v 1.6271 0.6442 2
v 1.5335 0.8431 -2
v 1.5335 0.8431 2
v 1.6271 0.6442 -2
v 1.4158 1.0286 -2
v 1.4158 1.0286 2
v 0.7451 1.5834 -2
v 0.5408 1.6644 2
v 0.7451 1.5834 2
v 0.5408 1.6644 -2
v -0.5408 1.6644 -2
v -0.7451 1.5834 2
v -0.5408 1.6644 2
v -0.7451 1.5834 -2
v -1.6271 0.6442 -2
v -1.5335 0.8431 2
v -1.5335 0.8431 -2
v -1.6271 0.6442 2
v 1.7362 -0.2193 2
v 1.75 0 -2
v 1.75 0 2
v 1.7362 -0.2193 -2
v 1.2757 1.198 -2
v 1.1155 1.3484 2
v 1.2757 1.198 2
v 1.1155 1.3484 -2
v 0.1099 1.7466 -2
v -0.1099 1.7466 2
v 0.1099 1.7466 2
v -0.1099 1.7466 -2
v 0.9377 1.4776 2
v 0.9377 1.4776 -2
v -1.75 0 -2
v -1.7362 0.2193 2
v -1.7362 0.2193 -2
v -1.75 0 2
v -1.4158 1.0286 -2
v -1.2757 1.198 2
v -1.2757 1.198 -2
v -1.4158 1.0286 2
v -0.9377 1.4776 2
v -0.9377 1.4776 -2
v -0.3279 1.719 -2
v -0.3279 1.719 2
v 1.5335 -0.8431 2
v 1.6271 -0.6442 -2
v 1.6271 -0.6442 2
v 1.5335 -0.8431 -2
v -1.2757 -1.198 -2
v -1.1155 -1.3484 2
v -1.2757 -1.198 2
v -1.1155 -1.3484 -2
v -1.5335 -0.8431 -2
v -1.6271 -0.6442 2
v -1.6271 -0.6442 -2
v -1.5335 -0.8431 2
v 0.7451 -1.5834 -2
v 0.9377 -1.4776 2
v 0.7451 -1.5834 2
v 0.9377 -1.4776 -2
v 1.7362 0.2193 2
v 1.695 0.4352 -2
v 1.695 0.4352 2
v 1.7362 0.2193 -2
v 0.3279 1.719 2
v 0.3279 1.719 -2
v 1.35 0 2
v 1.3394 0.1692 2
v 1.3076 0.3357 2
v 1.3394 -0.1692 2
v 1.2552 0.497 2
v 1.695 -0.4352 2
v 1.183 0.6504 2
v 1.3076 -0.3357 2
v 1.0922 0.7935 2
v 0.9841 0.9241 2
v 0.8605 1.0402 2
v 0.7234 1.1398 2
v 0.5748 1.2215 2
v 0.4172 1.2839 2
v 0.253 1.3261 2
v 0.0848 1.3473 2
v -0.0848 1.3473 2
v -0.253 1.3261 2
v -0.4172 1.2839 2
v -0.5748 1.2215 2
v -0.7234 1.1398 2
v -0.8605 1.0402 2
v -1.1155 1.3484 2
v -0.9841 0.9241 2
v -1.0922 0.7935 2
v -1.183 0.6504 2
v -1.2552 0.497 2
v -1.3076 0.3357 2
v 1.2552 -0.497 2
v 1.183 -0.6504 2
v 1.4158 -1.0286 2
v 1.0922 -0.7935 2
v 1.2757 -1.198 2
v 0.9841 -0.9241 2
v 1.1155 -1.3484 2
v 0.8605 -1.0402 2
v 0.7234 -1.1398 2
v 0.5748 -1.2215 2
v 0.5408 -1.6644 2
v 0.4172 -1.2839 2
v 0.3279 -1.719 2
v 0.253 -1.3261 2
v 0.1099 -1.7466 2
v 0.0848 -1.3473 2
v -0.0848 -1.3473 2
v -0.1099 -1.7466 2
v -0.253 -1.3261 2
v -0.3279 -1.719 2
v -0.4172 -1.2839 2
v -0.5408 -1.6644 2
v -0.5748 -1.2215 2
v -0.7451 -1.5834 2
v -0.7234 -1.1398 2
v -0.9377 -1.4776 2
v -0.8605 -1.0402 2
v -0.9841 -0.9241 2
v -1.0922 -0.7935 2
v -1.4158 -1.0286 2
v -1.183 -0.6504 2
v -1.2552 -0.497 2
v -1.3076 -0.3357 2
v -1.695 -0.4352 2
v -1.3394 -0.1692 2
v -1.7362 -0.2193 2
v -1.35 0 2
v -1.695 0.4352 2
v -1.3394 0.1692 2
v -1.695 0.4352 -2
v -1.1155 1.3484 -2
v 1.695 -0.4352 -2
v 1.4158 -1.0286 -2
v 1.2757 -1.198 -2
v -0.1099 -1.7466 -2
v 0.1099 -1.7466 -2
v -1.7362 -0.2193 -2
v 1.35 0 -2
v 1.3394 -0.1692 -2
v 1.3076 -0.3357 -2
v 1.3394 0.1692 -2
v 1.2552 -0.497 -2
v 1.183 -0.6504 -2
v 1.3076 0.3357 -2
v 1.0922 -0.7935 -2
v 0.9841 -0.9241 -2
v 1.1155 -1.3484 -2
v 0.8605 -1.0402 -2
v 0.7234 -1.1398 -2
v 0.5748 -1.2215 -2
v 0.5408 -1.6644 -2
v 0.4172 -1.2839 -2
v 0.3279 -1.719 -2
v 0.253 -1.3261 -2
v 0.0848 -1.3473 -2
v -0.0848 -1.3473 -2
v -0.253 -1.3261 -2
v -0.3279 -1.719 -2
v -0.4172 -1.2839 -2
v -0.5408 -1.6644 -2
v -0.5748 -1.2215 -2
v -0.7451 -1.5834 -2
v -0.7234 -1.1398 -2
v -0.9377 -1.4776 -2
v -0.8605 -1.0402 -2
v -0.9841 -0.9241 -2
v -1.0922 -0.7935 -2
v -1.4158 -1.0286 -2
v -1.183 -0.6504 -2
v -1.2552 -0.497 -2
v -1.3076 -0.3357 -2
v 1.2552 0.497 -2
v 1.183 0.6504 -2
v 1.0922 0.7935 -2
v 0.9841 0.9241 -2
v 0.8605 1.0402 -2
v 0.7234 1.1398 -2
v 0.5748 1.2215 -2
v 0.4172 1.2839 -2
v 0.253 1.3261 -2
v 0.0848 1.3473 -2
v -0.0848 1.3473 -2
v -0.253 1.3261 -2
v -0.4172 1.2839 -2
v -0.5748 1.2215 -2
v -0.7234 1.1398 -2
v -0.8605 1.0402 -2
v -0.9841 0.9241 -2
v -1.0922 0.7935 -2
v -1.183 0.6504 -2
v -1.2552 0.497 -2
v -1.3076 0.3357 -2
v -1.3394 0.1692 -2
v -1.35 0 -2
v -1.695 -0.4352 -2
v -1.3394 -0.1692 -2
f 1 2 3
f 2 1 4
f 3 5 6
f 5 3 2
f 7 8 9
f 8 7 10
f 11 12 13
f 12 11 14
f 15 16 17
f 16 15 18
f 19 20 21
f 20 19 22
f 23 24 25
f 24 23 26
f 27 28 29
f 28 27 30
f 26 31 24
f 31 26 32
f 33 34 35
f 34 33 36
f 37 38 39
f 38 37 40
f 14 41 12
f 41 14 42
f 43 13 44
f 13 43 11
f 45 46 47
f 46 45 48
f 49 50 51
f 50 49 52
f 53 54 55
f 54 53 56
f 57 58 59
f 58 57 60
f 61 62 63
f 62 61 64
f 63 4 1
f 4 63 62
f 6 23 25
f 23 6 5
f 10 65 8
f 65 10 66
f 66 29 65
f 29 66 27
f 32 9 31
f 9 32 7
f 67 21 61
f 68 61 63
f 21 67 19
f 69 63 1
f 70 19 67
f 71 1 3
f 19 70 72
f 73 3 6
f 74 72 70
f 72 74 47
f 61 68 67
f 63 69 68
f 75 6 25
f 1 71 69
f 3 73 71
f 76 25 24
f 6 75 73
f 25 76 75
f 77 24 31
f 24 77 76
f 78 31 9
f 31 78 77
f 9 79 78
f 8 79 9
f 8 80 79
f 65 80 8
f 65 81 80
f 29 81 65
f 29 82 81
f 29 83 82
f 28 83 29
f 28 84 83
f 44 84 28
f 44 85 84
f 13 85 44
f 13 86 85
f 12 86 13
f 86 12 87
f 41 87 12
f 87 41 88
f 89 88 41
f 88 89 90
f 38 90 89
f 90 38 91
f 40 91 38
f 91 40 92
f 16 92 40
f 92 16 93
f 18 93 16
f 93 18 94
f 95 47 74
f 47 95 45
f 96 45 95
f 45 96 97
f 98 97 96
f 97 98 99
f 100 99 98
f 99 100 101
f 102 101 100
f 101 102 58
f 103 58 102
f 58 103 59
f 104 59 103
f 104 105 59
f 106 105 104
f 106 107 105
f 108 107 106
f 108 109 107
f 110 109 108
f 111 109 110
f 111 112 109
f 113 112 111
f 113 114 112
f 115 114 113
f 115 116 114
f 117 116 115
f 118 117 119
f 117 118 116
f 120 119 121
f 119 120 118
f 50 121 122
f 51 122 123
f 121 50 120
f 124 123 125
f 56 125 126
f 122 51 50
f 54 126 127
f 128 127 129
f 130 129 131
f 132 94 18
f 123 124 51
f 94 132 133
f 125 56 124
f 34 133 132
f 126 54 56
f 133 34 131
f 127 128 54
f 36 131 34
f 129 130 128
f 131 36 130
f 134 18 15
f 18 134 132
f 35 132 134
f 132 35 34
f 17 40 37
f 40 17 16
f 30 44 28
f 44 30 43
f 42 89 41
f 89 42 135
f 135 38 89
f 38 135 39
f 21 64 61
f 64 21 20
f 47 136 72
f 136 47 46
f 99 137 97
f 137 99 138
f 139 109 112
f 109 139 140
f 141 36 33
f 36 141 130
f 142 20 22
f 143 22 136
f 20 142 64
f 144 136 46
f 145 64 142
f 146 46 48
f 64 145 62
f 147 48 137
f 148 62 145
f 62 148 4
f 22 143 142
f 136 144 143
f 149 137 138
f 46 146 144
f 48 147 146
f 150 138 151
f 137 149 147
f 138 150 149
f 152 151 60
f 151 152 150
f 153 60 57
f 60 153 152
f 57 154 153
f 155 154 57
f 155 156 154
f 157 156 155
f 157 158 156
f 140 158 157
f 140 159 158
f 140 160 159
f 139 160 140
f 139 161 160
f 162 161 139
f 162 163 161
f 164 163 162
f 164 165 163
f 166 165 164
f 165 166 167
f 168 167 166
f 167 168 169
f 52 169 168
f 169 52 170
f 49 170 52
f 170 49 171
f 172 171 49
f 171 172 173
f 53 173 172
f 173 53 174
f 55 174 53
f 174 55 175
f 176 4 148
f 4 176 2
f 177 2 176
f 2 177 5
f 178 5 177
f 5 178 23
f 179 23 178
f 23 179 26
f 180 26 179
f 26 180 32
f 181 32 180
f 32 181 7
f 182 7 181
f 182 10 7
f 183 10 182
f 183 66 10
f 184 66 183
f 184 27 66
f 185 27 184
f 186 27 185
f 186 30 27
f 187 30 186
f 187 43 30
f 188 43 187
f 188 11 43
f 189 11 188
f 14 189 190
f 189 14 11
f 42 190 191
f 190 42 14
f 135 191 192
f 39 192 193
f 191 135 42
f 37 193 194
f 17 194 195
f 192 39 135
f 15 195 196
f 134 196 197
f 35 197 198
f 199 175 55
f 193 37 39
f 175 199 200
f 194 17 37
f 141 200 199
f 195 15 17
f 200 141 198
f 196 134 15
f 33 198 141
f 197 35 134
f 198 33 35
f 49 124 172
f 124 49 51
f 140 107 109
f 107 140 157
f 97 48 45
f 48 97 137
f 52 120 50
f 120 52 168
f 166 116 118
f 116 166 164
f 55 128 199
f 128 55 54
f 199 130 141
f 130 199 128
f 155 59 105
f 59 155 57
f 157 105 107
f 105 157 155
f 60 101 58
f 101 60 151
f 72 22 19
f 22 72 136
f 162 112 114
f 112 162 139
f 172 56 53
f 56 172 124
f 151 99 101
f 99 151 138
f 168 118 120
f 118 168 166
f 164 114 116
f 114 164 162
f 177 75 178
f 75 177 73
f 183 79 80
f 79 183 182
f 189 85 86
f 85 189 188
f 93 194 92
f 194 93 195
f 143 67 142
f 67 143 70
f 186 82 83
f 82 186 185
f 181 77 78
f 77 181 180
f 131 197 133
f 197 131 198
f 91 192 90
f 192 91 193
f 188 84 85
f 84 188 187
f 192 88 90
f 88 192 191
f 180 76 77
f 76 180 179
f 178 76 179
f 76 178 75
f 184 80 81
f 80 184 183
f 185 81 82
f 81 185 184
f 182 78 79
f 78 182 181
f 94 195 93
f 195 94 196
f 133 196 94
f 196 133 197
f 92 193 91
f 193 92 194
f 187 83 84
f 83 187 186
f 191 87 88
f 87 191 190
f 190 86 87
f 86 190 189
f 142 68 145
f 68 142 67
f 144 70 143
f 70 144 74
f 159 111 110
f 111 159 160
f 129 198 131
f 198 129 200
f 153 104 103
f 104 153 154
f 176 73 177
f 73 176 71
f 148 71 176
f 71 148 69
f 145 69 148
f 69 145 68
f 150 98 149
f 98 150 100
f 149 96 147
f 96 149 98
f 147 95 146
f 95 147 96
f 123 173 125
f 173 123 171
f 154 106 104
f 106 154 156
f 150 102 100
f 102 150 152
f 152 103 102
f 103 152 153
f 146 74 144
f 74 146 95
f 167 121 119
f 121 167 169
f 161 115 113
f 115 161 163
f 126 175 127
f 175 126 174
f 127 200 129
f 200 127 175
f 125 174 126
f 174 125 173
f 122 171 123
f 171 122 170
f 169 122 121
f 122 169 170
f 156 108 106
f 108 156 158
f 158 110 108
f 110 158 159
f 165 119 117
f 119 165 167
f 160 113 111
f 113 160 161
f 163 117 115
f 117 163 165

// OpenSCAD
$fn = 50;


difference() {
	union() {
		translate(v = [0, 0, -2.0000000000]) {
			cylinder(h = 4, r = 1.7500000000);
		}
	}
	union() {
		translate(v = [0, 0, -100.0000000000]) {
			cylinder(h = 200, r = 1.3500000000);
		}
	}
}
